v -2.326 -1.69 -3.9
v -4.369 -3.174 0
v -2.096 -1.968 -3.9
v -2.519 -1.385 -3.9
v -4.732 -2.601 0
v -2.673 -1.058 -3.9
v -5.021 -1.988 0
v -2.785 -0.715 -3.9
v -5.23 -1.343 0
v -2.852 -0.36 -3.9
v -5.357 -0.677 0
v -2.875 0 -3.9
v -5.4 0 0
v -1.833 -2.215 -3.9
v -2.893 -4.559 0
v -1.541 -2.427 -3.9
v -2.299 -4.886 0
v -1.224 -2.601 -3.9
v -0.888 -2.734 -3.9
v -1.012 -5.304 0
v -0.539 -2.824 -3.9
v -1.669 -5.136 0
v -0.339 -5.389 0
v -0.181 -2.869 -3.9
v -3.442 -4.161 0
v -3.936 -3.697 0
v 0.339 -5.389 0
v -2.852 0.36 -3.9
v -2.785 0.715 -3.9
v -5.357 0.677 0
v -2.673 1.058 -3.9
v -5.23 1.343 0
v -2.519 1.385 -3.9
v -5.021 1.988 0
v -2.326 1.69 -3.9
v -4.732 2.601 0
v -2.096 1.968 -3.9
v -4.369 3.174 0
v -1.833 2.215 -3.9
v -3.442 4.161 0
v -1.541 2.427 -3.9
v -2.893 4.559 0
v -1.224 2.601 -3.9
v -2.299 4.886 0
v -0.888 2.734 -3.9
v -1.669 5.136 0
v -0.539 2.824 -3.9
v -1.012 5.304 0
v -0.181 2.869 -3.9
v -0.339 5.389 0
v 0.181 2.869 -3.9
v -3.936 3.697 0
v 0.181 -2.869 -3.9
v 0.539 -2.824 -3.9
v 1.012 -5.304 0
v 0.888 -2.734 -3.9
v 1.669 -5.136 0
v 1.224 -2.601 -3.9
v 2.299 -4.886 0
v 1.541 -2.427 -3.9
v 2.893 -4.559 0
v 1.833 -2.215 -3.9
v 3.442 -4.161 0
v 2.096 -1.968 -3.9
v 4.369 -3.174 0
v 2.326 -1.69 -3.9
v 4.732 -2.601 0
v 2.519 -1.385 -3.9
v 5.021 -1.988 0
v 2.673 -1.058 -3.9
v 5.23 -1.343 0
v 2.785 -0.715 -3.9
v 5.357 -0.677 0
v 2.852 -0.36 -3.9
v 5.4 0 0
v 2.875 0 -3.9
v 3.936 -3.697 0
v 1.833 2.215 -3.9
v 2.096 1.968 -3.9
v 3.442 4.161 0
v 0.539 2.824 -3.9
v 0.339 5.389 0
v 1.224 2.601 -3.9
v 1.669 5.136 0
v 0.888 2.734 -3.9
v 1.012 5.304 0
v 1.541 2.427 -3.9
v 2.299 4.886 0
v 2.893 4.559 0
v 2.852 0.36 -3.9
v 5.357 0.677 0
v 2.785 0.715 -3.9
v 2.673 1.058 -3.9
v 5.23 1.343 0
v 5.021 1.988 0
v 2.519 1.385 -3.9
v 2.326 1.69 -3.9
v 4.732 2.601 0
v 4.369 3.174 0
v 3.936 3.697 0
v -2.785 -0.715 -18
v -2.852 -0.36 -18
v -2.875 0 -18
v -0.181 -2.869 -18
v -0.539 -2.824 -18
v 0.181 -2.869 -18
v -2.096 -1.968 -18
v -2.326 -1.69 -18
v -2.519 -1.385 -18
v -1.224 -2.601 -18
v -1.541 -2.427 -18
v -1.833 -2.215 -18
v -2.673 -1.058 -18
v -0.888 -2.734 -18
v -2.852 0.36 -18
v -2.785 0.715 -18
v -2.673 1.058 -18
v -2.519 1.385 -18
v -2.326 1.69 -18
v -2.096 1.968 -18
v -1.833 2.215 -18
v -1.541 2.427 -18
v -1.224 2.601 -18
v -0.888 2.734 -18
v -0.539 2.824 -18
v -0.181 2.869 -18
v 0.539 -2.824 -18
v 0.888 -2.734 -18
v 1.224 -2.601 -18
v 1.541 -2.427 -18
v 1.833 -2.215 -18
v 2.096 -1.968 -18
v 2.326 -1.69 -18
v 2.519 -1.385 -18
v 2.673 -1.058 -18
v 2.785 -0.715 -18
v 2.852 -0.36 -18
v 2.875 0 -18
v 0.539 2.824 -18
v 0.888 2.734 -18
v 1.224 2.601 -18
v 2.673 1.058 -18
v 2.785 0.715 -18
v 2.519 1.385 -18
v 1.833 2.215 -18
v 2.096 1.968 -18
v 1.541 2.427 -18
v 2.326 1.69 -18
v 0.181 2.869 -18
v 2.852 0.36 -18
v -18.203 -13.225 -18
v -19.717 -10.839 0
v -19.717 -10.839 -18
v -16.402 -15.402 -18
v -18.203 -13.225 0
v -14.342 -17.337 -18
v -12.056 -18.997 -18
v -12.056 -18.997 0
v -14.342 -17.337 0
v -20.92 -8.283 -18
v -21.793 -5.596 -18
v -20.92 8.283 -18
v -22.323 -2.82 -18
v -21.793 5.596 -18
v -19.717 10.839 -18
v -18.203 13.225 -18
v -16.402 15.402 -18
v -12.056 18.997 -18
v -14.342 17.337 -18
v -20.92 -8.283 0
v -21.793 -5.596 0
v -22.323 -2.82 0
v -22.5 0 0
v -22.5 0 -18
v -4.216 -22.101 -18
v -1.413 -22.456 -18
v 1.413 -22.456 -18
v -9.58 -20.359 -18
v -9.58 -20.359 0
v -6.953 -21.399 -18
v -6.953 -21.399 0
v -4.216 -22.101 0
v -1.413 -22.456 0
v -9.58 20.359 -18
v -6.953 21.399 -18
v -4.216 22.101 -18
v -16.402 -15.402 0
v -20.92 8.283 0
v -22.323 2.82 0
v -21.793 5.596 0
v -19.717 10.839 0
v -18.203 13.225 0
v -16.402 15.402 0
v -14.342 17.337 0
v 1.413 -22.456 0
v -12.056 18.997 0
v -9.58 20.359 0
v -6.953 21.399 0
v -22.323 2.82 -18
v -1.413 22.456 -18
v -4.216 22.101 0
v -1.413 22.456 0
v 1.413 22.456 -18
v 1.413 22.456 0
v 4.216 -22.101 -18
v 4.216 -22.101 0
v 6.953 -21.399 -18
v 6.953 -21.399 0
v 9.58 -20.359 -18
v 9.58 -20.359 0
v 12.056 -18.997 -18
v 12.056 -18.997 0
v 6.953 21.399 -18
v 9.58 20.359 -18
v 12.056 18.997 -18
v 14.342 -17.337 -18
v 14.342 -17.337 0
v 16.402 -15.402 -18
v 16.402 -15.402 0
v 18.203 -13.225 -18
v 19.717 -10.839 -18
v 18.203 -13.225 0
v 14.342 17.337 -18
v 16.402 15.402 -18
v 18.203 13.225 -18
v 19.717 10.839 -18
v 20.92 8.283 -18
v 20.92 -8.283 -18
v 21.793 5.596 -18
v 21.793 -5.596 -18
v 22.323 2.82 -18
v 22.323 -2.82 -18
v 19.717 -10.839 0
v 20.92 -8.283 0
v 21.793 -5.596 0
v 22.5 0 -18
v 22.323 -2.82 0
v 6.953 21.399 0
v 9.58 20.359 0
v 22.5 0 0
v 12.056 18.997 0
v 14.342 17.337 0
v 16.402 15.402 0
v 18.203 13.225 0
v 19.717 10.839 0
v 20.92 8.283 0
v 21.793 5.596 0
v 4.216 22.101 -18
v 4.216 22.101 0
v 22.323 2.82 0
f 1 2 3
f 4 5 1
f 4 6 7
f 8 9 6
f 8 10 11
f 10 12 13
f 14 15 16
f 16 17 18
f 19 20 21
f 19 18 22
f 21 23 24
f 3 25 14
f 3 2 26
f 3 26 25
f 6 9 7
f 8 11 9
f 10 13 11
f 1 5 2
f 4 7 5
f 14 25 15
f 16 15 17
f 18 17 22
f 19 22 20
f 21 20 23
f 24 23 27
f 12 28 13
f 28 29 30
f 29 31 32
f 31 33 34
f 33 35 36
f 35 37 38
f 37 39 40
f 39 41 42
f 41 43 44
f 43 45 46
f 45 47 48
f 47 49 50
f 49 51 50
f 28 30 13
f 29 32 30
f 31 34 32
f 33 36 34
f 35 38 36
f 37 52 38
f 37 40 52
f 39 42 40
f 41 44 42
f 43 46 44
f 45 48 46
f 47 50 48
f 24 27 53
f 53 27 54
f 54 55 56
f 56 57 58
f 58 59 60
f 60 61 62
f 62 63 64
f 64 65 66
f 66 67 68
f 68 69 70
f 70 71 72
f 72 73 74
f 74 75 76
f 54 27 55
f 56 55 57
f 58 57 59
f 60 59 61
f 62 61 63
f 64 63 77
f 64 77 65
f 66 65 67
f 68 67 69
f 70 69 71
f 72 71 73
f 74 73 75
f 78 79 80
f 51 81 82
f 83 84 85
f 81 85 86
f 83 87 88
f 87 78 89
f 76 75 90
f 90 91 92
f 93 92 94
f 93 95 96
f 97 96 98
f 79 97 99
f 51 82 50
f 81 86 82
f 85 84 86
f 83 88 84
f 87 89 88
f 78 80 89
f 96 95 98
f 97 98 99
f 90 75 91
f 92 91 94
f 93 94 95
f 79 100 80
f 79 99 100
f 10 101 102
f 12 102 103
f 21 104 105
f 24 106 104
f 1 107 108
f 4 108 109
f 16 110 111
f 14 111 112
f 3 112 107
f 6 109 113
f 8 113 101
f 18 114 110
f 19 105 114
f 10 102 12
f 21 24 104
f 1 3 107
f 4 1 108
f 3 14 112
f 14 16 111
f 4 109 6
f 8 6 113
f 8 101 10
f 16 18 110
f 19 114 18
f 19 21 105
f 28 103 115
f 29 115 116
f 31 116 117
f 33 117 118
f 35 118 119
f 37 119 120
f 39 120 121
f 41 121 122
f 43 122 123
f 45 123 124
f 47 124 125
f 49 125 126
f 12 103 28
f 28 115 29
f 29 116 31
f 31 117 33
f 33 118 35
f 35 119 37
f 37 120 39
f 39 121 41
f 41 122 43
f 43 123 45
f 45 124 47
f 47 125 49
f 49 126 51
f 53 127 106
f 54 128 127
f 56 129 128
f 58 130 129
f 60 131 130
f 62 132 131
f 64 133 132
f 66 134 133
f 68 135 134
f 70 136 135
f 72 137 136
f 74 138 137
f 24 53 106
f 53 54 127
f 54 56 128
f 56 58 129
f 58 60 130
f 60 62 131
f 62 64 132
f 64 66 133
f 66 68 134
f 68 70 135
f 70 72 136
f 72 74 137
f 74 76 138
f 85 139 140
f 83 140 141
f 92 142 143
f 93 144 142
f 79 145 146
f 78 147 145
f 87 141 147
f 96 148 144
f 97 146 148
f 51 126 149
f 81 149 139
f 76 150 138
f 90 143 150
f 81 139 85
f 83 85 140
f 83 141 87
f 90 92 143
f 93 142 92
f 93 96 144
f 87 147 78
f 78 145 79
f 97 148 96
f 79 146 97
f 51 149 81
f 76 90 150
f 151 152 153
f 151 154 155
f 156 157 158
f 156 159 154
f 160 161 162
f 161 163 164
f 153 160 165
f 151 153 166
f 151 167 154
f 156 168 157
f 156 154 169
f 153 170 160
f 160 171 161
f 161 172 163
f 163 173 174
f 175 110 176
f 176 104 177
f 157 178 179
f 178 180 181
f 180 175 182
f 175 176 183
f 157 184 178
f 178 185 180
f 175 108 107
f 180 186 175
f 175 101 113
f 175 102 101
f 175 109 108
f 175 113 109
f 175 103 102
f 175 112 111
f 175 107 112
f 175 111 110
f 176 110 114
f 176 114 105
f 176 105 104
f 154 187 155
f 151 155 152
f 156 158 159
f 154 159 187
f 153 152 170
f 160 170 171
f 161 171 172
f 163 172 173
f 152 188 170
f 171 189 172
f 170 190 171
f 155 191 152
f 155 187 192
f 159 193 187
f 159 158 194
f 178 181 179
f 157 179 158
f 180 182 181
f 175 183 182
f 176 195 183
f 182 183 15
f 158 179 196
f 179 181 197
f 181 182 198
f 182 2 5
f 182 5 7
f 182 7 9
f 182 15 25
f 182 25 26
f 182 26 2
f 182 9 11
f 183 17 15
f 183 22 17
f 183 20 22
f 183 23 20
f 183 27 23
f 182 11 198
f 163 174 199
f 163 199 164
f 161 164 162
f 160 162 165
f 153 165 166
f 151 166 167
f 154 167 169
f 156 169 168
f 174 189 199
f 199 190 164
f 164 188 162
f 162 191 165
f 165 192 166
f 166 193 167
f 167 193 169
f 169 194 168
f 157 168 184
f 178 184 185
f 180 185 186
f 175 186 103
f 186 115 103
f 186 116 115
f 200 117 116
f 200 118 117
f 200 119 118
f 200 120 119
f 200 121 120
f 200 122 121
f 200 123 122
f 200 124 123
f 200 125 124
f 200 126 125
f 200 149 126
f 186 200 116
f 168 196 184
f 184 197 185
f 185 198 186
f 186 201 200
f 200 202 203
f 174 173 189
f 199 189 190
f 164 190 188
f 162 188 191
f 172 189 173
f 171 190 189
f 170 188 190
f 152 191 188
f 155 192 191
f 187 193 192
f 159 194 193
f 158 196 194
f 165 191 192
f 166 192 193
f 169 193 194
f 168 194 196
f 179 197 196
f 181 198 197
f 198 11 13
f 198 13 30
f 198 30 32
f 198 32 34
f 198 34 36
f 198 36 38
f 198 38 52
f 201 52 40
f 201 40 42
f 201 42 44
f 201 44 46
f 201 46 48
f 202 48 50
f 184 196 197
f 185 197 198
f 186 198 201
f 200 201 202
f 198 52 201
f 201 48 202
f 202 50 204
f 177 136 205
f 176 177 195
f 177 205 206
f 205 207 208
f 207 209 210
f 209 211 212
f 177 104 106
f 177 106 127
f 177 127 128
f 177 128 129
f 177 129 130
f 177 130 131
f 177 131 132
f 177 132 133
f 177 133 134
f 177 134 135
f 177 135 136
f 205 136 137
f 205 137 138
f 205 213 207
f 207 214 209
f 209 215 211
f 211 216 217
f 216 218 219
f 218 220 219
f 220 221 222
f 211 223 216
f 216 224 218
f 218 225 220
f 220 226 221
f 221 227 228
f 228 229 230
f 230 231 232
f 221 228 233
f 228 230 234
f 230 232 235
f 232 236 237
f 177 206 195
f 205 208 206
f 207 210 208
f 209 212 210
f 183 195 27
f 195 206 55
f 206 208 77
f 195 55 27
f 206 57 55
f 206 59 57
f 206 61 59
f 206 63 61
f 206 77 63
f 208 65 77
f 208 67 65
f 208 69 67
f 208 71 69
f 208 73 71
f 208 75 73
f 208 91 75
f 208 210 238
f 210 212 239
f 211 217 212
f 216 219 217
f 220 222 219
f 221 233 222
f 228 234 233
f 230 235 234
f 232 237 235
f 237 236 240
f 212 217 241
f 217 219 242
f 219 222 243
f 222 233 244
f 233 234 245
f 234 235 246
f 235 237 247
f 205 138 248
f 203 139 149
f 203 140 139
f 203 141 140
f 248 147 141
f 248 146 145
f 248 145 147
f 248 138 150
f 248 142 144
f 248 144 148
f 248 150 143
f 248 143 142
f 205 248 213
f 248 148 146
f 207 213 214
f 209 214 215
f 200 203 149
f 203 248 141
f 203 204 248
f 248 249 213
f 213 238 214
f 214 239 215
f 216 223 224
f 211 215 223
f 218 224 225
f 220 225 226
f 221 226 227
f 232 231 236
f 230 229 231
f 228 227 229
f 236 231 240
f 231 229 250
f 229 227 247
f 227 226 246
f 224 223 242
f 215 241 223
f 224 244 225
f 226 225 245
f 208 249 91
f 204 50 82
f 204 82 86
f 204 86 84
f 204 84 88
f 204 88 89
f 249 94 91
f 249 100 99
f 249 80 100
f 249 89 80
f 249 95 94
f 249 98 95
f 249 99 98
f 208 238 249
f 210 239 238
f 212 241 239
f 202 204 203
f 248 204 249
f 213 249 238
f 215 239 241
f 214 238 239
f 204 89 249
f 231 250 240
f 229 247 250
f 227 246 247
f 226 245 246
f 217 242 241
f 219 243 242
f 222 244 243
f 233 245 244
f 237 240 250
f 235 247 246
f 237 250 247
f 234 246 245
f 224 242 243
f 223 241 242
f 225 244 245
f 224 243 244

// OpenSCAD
$fn = 50;

difference() {
	union() {
		translate(v = [0, 0, -18.0]) {
			cylinder(h = 18, r = 22.5);
		}
	}
	union() {
		translate(v = [0, 0, 0]) {
			rotate(a = [0, 0, 0]) {
				difference() {
					union() {
						translate(v = [0, 0, -21.0]) {
							cylinder(h = 21, r = 2.6);
						}
						translate(v = [0, 0, -3.9]) {
							cylinder(h = 3.9, r1 = 2.875, r2 = 5.4);
						}
						translate(v = [0, 0, -21.0]) {
							cylinder(h = 21, r = 2.875);
						}
						translate(v = [0, 0, -21.0]) {
							cylinder(h = 21, r = 2.6);
						}
					}
					union();
				}
			}
		}
	}
}
